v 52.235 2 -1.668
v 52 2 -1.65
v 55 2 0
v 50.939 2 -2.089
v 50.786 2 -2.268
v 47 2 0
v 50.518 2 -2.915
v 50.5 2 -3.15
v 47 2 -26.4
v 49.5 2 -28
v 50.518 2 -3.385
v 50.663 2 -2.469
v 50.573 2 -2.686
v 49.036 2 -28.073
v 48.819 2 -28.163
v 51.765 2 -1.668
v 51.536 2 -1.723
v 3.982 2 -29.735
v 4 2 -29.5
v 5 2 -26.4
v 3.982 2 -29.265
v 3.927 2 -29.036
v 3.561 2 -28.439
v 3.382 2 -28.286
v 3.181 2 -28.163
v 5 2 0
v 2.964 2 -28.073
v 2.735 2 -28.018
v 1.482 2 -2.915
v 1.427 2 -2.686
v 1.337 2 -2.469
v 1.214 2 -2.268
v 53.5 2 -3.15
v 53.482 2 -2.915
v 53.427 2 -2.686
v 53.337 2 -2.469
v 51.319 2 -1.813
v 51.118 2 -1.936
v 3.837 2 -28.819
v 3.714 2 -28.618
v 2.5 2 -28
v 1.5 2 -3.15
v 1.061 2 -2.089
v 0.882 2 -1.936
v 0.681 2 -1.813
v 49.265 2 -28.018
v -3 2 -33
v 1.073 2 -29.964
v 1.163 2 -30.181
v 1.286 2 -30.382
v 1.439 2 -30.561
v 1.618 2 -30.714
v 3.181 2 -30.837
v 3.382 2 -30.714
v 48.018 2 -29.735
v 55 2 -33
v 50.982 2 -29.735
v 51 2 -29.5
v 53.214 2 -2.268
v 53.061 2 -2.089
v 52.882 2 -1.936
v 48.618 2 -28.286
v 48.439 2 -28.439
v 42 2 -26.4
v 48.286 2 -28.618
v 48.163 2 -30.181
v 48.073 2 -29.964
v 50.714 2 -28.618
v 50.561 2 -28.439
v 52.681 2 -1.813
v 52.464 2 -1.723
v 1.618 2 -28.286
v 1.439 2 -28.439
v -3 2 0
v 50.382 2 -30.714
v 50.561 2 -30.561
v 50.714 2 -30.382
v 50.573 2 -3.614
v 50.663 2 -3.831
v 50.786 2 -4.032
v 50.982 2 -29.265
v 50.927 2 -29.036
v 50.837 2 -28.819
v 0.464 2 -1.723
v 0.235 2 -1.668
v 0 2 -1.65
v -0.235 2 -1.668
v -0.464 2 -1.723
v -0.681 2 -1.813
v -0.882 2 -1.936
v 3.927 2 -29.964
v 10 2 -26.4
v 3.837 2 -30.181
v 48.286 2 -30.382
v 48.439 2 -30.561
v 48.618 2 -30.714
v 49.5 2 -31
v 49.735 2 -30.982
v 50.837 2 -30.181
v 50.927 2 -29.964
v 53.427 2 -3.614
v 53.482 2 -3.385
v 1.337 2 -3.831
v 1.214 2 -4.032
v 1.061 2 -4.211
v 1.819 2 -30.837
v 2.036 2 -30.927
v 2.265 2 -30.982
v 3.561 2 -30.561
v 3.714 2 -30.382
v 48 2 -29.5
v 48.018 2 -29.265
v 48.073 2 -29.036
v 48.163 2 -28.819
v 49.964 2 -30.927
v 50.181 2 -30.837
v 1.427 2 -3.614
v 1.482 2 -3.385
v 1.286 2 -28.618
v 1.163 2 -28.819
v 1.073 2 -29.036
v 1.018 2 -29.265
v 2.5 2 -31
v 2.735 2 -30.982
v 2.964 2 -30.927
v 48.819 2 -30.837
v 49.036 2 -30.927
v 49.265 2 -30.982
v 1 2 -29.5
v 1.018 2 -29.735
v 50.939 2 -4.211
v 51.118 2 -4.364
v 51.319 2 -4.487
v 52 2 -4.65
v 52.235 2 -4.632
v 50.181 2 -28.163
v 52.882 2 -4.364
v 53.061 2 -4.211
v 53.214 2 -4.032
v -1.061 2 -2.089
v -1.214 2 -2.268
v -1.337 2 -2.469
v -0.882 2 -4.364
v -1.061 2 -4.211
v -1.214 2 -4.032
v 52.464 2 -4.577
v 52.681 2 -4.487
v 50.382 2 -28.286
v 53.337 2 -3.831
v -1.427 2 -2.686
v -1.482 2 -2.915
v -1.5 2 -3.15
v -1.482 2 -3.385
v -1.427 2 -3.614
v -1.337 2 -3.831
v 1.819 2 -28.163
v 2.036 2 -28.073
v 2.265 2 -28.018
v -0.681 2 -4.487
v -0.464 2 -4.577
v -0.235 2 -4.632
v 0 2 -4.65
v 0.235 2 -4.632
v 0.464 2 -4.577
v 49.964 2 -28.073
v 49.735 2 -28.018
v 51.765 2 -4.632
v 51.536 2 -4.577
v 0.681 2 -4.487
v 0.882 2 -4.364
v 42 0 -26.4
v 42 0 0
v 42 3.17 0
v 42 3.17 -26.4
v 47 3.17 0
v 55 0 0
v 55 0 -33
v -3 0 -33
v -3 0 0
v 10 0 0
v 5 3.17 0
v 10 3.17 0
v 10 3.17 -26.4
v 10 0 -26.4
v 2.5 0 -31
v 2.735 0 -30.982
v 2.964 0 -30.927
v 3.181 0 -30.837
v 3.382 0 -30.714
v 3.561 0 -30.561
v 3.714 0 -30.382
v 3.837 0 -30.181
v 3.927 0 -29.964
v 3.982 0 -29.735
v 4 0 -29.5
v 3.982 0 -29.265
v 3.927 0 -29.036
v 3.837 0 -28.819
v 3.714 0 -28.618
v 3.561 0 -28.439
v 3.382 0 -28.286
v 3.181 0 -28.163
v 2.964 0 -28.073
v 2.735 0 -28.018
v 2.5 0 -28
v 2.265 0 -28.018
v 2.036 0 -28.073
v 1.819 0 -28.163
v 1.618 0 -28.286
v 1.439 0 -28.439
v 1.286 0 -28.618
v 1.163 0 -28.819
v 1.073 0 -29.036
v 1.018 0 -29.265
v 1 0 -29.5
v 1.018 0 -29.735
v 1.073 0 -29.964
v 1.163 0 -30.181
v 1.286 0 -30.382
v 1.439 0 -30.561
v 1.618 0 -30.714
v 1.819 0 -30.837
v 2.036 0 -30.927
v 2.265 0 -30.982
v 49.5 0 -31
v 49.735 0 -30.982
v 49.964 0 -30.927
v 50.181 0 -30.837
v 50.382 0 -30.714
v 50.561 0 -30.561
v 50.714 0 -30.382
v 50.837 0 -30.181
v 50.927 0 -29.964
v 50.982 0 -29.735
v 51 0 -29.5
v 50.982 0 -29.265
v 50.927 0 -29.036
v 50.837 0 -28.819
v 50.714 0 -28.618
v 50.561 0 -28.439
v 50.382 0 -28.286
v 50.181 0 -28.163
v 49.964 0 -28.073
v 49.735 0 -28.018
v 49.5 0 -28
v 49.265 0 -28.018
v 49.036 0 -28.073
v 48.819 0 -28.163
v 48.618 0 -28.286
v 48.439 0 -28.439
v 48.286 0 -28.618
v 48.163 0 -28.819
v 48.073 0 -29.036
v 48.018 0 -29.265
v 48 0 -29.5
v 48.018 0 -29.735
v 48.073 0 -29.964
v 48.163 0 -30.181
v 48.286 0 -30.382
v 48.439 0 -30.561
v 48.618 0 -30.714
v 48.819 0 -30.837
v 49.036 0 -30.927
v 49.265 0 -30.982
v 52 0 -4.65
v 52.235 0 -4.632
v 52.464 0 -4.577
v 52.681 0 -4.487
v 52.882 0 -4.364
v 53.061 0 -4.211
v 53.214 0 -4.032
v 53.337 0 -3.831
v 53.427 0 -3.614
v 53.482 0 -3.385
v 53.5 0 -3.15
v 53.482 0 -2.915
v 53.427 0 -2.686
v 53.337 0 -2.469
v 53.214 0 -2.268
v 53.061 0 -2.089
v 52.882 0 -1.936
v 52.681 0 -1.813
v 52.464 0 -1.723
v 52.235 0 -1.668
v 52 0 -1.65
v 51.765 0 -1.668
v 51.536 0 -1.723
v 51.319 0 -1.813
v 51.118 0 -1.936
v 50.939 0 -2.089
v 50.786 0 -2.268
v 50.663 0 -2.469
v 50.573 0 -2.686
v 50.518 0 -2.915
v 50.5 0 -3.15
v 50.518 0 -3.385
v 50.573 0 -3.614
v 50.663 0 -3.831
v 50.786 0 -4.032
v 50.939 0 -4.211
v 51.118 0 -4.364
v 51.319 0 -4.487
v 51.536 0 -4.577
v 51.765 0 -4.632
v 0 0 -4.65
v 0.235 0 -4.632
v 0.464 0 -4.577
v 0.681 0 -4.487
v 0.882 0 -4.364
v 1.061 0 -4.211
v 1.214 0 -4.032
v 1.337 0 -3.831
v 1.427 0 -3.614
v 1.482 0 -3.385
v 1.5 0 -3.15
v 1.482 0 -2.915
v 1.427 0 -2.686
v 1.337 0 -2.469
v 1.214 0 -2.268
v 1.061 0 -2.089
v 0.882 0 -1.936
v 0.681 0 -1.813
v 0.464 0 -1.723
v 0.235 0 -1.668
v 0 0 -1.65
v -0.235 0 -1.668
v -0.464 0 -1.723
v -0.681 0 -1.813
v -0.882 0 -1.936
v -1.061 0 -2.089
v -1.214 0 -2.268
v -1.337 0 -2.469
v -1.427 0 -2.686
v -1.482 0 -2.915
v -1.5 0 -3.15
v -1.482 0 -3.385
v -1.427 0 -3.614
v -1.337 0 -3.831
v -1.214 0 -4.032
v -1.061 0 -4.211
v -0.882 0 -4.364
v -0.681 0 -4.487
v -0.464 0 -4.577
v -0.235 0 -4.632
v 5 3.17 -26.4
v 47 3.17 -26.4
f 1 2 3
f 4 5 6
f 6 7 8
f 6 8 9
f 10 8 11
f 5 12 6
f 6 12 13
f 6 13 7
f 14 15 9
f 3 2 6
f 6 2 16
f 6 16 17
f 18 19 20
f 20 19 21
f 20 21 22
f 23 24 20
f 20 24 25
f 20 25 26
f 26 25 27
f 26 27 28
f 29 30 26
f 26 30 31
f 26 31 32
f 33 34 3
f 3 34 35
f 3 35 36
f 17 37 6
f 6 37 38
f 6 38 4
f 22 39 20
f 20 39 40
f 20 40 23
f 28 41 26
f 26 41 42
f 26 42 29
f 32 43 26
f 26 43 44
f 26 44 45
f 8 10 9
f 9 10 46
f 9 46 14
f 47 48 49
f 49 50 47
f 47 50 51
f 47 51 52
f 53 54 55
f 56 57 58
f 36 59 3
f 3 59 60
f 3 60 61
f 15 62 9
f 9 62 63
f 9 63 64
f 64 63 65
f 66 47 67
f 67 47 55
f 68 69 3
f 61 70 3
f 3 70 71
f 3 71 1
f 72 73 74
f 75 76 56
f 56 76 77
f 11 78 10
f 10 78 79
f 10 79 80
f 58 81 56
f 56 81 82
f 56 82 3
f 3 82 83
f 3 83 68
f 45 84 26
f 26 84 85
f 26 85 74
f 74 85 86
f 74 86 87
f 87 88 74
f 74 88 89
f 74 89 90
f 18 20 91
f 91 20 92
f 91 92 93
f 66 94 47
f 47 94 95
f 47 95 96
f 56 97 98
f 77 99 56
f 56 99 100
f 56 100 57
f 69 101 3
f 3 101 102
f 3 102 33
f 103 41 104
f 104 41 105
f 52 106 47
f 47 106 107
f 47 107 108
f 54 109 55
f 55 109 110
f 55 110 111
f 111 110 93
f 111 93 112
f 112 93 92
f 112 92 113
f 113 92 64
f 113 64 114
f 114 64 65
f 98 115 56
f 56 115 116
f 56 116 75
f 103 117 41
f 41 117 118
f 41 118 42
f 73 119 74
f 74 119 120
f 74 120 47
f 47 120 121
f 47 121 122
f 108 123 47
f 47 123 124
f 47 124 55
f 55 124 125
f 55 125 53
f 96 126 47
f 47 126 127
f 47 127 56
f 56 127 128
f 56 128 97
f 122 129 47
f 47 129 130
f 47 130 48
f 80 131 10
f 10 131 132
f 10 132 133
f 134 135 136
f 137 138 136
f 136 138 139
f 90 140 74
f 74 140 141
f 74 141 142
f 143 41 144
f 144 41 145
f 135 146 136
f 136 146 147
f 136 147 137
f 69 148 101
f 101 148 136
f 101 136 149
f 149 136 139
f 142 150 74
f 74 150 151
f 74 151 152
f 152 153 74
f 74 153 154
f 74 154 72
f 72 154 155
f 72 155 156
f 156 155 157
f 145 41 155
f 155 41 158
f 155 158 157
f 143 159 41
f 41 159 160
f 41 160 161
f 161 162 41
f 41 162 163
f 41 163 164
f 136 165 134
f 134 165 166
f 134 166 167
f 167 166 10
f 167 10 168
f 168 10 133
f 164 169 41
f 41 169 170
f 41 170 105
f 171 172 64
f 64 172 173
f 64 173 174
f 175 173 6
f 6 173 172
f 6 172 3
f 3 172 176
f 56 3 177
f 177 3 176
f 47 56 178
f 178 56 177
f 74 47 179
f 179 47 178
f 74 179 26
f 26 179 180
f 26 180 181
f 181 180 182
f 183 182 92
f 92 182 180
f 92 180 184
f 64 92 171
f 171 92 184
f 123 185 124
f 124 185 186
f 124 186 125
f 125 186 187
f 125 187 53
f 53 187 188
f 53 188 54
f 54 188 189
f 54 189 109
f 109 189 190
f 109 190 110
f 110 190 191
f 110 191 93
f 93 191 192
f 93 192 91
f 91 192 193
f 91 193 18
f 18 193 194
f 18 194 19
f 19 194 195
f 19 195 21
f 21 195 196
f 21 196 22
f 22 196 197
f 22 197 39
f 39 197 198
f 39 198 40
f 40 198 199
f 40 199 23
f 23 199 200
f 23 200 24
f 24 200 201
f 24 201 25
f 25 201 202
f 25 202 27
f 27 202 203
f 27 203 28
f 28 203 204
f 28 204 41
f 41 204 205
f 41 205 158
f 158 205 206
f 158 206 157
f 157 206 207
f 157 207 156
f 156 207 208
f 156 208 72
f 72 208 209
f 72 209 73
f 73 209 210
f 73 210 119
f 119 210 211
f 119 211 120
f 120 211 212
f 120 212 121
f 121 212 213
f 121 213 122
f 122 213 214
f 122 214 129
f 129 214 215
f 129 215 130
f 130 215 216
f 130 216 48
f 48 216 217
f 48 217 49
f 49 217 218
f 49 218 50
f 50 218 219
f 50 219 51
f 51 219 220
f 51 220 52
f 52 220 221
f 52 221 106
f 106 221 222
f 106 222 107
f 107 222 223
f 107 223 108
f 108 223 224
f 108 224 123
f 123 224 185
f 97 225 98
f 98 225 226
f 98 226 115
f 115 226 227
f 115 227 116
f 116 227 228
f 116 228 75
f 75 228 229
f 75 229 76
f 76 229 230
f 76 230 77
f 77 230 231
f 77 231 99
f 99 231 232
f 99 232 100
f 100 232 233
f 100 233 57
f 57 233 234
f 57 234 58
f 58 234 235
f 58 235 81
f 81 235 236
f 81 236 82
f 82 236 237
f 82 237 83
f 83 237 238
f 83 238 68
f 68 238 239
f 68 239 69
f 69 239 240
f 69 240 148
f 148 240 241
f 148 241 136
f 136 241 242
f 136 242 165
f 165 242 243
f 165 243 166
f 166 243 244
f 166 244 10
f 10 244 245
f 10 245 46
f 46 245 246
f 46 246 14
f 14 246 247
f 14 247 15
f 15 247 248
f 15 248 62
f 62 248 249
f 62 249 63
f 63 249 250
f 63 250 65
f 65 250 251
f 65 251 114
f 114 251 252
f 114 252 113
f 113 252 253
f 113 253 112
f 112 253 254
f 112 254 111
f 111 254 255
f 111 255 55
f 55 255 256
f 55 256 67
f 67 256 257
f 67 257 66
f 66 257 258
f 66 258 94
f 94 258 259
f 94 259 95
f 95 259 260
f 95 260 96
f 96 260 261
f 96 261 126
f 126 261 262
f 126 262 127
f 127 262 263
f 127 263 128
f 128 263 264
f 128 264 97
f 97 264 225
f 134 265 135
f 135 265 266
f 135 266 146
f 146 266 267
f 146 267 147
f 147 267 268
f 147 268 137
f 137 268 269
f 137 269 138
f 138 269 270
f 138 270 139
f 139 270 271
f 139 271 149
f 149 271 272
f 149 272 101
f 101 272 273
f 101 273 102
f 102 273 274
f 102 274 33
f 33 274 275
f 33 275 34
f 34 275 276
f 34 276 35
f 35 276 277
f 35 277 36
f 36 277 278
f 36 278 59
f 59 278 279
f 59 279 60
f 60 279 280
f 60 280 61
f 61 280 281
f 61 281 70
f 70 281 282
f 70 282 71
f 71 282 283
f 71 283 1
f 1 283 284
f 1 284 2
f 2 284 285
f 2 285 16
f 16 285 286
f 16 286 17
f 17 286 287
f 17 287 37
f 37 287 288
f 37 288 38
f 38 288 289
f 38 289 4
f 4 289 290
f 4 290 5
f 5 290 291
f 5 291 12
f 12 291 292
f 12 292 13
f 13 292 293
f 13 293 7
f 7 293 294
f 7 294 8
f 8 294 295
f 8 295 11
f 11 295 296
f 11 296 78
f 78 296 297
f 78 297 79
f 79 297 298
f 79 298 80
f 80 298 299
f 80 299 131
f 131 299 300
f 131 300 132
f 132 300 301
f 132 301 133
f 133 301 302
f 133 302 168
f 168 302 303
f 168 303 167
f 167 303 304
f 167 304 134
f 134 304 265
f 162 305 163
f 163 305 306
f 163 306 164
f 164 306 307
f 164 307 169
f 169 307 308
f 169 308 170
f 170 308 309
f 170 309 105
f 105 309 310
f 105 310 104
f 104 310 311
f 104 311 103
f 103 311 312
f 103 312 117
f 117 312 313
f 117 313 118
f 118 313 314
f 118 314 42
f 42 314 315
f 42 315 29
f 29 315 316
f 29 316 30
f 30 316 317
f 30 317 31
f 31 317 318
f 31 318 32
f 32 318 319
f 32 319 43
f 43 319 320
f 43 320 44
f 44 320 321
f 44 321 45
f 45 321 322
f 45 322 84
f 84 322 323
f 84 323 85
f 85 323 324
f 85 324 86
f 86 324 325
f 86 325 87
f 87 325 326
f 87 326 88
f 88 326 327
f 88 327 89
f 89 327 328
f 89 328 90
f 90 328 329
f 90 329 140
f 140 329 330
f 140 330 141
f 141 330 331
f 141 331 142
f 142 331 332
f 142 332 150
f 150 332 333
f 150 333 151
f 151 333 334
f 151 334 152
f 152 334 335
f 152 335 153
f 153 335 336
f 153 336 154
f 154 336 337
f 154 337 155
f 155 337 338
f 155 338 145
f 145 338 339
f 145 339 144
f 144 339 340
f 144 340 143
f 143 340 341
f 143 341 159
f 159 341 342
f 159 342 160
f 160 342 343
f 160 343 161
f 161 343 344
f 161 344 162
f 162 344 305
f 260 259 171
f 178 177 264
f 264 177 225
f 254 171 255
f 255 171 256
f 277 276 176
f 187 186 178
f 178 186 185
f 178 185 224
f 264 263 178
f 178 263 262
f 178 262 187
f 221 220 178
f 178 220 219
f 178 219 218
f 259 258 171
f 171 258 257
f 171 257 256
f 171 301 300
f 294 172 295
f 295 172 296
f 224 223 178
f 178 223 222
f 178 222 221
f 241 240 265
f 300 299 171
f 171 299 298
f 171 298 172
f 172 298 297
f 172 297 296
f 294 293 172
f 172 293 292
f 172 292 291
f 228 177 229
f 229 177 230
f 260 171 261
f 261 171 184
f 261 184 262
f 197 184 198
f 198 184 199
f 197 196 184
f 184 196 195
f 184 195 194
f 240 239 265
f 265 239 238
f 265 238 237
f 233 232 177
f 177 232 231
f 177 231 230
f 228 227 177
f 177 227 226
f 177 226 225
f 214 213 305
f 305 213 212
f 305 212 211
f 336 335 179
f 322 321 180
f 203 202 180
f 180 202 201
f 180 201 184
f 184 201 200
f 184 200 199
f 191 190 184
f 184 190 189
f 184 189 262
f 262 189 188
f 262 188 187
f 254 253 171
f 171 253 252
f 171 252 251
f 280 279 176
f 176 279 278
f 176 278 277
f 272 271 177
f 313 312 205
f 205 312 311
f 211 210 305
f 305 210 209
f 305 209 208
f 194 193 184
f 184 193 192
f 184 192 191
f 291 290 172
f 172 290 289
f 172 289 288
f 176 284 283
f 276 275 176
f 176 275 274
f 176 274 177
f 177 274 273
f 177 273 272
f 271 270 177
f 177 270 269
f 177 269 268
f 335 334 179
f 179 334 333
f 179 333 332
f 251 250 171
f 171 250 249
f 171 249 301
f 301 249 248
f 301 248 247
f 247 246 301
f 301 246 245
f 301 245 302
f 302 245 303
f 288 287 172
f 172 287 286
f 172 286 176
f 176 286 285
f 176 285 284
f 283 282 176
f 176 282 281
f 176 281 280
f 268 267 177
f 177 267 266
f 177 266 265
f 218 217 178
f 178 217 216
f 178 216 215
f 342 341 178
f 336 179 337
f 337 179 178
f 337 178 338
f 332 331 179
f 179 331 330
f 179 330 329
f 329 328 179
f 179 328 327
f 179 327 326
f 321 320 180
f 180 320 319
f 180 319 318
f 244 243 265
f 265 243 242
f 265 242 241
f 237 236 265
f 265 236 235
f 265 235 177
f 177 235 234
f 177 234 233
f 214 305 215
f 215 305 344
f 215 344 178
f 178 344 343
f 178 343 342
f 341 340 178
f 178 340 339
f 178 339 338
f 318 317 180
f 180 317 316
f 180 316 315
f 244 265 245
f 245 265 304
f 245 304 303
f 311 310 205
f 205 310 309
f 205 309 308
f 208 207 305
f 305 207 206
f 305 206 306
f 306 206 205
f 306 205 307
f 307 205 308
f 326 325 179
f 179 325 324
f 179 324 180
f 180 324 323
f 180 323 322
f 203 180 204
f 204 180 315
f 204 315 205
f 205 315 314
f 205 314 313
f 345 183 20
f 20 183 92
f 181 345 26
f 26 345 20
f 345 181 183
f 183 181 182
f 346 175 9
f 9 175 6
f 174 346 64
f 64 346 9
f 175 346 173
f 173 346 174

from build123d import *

# Parameters (mm, degrees)
SKETCH1_R           = 1.5
BOSS_EXTRUDE1_DEPTH = 2
SKETCH2_W           = 5
SKETCH2_H           = 26.4
BOSS_EXTRUDE2_DEPTH = 1.17


with BuildPart() as part:
    # Sketch1 → Boss-Extrude1 (new body)
    with BuildSketch(Plane(origin=(0, 0, 0), x_dir=(1, 0, 0), z_dir=(0, 1, 0))):
        Polygon((-3, 0), (0, 0), (10, 0), (10, 26.4), (42, 26.4), (42, 0), (52, 0), (55, 0), (55, 33), (-3, 33), align=None)
        with Locations(Location((0, 3.15, 0), (0, 0, 270))):
            Circle(SKETCH1_R, mode=Mode.SUBTRACT)
        with BuildLine():
            ThreePointArc((53.5, 3.15), (53.060660172, 2.089339828), (52, 1.65))
            ThreePointArc((52, 1.65), (50.939339828, 4.210660172), (53.5, 3.15))
        make_face(mode=Mode.SUBTRACT)
        with Locations(Location((2.5, 29.5, 0), (0, 0, 270))):
            Circle(SKETCH1_R, mode=Mode.SUBTRACT)
        with Locations(Location((49.5, 29.5, 0), (0, 0, 270))):
            Circle(SKETCH1_R, mode=Mode.SUBTRACT)
    extrude(amount=BOSS_EXTRUDE1_DEPTH)

    # Sketch2 → Boss-Extrude2 (add)
    with BuildSketch(Plane(origin=(0, 2, 0), x_dir=(1, 0, 0), z_dir=(0, 1, 0))):
        with Locations((7.5, 13.2)):
            Rectangle(SKETCH2_W, SKETCH2_H)
        with Locations((44.5, 13.2)):
            Rectangle(SKETCH2_W, SKETCH2_H)
    extrude(amount=BOSS_EXTRUDE2_DEPTH)


solid = part.part
